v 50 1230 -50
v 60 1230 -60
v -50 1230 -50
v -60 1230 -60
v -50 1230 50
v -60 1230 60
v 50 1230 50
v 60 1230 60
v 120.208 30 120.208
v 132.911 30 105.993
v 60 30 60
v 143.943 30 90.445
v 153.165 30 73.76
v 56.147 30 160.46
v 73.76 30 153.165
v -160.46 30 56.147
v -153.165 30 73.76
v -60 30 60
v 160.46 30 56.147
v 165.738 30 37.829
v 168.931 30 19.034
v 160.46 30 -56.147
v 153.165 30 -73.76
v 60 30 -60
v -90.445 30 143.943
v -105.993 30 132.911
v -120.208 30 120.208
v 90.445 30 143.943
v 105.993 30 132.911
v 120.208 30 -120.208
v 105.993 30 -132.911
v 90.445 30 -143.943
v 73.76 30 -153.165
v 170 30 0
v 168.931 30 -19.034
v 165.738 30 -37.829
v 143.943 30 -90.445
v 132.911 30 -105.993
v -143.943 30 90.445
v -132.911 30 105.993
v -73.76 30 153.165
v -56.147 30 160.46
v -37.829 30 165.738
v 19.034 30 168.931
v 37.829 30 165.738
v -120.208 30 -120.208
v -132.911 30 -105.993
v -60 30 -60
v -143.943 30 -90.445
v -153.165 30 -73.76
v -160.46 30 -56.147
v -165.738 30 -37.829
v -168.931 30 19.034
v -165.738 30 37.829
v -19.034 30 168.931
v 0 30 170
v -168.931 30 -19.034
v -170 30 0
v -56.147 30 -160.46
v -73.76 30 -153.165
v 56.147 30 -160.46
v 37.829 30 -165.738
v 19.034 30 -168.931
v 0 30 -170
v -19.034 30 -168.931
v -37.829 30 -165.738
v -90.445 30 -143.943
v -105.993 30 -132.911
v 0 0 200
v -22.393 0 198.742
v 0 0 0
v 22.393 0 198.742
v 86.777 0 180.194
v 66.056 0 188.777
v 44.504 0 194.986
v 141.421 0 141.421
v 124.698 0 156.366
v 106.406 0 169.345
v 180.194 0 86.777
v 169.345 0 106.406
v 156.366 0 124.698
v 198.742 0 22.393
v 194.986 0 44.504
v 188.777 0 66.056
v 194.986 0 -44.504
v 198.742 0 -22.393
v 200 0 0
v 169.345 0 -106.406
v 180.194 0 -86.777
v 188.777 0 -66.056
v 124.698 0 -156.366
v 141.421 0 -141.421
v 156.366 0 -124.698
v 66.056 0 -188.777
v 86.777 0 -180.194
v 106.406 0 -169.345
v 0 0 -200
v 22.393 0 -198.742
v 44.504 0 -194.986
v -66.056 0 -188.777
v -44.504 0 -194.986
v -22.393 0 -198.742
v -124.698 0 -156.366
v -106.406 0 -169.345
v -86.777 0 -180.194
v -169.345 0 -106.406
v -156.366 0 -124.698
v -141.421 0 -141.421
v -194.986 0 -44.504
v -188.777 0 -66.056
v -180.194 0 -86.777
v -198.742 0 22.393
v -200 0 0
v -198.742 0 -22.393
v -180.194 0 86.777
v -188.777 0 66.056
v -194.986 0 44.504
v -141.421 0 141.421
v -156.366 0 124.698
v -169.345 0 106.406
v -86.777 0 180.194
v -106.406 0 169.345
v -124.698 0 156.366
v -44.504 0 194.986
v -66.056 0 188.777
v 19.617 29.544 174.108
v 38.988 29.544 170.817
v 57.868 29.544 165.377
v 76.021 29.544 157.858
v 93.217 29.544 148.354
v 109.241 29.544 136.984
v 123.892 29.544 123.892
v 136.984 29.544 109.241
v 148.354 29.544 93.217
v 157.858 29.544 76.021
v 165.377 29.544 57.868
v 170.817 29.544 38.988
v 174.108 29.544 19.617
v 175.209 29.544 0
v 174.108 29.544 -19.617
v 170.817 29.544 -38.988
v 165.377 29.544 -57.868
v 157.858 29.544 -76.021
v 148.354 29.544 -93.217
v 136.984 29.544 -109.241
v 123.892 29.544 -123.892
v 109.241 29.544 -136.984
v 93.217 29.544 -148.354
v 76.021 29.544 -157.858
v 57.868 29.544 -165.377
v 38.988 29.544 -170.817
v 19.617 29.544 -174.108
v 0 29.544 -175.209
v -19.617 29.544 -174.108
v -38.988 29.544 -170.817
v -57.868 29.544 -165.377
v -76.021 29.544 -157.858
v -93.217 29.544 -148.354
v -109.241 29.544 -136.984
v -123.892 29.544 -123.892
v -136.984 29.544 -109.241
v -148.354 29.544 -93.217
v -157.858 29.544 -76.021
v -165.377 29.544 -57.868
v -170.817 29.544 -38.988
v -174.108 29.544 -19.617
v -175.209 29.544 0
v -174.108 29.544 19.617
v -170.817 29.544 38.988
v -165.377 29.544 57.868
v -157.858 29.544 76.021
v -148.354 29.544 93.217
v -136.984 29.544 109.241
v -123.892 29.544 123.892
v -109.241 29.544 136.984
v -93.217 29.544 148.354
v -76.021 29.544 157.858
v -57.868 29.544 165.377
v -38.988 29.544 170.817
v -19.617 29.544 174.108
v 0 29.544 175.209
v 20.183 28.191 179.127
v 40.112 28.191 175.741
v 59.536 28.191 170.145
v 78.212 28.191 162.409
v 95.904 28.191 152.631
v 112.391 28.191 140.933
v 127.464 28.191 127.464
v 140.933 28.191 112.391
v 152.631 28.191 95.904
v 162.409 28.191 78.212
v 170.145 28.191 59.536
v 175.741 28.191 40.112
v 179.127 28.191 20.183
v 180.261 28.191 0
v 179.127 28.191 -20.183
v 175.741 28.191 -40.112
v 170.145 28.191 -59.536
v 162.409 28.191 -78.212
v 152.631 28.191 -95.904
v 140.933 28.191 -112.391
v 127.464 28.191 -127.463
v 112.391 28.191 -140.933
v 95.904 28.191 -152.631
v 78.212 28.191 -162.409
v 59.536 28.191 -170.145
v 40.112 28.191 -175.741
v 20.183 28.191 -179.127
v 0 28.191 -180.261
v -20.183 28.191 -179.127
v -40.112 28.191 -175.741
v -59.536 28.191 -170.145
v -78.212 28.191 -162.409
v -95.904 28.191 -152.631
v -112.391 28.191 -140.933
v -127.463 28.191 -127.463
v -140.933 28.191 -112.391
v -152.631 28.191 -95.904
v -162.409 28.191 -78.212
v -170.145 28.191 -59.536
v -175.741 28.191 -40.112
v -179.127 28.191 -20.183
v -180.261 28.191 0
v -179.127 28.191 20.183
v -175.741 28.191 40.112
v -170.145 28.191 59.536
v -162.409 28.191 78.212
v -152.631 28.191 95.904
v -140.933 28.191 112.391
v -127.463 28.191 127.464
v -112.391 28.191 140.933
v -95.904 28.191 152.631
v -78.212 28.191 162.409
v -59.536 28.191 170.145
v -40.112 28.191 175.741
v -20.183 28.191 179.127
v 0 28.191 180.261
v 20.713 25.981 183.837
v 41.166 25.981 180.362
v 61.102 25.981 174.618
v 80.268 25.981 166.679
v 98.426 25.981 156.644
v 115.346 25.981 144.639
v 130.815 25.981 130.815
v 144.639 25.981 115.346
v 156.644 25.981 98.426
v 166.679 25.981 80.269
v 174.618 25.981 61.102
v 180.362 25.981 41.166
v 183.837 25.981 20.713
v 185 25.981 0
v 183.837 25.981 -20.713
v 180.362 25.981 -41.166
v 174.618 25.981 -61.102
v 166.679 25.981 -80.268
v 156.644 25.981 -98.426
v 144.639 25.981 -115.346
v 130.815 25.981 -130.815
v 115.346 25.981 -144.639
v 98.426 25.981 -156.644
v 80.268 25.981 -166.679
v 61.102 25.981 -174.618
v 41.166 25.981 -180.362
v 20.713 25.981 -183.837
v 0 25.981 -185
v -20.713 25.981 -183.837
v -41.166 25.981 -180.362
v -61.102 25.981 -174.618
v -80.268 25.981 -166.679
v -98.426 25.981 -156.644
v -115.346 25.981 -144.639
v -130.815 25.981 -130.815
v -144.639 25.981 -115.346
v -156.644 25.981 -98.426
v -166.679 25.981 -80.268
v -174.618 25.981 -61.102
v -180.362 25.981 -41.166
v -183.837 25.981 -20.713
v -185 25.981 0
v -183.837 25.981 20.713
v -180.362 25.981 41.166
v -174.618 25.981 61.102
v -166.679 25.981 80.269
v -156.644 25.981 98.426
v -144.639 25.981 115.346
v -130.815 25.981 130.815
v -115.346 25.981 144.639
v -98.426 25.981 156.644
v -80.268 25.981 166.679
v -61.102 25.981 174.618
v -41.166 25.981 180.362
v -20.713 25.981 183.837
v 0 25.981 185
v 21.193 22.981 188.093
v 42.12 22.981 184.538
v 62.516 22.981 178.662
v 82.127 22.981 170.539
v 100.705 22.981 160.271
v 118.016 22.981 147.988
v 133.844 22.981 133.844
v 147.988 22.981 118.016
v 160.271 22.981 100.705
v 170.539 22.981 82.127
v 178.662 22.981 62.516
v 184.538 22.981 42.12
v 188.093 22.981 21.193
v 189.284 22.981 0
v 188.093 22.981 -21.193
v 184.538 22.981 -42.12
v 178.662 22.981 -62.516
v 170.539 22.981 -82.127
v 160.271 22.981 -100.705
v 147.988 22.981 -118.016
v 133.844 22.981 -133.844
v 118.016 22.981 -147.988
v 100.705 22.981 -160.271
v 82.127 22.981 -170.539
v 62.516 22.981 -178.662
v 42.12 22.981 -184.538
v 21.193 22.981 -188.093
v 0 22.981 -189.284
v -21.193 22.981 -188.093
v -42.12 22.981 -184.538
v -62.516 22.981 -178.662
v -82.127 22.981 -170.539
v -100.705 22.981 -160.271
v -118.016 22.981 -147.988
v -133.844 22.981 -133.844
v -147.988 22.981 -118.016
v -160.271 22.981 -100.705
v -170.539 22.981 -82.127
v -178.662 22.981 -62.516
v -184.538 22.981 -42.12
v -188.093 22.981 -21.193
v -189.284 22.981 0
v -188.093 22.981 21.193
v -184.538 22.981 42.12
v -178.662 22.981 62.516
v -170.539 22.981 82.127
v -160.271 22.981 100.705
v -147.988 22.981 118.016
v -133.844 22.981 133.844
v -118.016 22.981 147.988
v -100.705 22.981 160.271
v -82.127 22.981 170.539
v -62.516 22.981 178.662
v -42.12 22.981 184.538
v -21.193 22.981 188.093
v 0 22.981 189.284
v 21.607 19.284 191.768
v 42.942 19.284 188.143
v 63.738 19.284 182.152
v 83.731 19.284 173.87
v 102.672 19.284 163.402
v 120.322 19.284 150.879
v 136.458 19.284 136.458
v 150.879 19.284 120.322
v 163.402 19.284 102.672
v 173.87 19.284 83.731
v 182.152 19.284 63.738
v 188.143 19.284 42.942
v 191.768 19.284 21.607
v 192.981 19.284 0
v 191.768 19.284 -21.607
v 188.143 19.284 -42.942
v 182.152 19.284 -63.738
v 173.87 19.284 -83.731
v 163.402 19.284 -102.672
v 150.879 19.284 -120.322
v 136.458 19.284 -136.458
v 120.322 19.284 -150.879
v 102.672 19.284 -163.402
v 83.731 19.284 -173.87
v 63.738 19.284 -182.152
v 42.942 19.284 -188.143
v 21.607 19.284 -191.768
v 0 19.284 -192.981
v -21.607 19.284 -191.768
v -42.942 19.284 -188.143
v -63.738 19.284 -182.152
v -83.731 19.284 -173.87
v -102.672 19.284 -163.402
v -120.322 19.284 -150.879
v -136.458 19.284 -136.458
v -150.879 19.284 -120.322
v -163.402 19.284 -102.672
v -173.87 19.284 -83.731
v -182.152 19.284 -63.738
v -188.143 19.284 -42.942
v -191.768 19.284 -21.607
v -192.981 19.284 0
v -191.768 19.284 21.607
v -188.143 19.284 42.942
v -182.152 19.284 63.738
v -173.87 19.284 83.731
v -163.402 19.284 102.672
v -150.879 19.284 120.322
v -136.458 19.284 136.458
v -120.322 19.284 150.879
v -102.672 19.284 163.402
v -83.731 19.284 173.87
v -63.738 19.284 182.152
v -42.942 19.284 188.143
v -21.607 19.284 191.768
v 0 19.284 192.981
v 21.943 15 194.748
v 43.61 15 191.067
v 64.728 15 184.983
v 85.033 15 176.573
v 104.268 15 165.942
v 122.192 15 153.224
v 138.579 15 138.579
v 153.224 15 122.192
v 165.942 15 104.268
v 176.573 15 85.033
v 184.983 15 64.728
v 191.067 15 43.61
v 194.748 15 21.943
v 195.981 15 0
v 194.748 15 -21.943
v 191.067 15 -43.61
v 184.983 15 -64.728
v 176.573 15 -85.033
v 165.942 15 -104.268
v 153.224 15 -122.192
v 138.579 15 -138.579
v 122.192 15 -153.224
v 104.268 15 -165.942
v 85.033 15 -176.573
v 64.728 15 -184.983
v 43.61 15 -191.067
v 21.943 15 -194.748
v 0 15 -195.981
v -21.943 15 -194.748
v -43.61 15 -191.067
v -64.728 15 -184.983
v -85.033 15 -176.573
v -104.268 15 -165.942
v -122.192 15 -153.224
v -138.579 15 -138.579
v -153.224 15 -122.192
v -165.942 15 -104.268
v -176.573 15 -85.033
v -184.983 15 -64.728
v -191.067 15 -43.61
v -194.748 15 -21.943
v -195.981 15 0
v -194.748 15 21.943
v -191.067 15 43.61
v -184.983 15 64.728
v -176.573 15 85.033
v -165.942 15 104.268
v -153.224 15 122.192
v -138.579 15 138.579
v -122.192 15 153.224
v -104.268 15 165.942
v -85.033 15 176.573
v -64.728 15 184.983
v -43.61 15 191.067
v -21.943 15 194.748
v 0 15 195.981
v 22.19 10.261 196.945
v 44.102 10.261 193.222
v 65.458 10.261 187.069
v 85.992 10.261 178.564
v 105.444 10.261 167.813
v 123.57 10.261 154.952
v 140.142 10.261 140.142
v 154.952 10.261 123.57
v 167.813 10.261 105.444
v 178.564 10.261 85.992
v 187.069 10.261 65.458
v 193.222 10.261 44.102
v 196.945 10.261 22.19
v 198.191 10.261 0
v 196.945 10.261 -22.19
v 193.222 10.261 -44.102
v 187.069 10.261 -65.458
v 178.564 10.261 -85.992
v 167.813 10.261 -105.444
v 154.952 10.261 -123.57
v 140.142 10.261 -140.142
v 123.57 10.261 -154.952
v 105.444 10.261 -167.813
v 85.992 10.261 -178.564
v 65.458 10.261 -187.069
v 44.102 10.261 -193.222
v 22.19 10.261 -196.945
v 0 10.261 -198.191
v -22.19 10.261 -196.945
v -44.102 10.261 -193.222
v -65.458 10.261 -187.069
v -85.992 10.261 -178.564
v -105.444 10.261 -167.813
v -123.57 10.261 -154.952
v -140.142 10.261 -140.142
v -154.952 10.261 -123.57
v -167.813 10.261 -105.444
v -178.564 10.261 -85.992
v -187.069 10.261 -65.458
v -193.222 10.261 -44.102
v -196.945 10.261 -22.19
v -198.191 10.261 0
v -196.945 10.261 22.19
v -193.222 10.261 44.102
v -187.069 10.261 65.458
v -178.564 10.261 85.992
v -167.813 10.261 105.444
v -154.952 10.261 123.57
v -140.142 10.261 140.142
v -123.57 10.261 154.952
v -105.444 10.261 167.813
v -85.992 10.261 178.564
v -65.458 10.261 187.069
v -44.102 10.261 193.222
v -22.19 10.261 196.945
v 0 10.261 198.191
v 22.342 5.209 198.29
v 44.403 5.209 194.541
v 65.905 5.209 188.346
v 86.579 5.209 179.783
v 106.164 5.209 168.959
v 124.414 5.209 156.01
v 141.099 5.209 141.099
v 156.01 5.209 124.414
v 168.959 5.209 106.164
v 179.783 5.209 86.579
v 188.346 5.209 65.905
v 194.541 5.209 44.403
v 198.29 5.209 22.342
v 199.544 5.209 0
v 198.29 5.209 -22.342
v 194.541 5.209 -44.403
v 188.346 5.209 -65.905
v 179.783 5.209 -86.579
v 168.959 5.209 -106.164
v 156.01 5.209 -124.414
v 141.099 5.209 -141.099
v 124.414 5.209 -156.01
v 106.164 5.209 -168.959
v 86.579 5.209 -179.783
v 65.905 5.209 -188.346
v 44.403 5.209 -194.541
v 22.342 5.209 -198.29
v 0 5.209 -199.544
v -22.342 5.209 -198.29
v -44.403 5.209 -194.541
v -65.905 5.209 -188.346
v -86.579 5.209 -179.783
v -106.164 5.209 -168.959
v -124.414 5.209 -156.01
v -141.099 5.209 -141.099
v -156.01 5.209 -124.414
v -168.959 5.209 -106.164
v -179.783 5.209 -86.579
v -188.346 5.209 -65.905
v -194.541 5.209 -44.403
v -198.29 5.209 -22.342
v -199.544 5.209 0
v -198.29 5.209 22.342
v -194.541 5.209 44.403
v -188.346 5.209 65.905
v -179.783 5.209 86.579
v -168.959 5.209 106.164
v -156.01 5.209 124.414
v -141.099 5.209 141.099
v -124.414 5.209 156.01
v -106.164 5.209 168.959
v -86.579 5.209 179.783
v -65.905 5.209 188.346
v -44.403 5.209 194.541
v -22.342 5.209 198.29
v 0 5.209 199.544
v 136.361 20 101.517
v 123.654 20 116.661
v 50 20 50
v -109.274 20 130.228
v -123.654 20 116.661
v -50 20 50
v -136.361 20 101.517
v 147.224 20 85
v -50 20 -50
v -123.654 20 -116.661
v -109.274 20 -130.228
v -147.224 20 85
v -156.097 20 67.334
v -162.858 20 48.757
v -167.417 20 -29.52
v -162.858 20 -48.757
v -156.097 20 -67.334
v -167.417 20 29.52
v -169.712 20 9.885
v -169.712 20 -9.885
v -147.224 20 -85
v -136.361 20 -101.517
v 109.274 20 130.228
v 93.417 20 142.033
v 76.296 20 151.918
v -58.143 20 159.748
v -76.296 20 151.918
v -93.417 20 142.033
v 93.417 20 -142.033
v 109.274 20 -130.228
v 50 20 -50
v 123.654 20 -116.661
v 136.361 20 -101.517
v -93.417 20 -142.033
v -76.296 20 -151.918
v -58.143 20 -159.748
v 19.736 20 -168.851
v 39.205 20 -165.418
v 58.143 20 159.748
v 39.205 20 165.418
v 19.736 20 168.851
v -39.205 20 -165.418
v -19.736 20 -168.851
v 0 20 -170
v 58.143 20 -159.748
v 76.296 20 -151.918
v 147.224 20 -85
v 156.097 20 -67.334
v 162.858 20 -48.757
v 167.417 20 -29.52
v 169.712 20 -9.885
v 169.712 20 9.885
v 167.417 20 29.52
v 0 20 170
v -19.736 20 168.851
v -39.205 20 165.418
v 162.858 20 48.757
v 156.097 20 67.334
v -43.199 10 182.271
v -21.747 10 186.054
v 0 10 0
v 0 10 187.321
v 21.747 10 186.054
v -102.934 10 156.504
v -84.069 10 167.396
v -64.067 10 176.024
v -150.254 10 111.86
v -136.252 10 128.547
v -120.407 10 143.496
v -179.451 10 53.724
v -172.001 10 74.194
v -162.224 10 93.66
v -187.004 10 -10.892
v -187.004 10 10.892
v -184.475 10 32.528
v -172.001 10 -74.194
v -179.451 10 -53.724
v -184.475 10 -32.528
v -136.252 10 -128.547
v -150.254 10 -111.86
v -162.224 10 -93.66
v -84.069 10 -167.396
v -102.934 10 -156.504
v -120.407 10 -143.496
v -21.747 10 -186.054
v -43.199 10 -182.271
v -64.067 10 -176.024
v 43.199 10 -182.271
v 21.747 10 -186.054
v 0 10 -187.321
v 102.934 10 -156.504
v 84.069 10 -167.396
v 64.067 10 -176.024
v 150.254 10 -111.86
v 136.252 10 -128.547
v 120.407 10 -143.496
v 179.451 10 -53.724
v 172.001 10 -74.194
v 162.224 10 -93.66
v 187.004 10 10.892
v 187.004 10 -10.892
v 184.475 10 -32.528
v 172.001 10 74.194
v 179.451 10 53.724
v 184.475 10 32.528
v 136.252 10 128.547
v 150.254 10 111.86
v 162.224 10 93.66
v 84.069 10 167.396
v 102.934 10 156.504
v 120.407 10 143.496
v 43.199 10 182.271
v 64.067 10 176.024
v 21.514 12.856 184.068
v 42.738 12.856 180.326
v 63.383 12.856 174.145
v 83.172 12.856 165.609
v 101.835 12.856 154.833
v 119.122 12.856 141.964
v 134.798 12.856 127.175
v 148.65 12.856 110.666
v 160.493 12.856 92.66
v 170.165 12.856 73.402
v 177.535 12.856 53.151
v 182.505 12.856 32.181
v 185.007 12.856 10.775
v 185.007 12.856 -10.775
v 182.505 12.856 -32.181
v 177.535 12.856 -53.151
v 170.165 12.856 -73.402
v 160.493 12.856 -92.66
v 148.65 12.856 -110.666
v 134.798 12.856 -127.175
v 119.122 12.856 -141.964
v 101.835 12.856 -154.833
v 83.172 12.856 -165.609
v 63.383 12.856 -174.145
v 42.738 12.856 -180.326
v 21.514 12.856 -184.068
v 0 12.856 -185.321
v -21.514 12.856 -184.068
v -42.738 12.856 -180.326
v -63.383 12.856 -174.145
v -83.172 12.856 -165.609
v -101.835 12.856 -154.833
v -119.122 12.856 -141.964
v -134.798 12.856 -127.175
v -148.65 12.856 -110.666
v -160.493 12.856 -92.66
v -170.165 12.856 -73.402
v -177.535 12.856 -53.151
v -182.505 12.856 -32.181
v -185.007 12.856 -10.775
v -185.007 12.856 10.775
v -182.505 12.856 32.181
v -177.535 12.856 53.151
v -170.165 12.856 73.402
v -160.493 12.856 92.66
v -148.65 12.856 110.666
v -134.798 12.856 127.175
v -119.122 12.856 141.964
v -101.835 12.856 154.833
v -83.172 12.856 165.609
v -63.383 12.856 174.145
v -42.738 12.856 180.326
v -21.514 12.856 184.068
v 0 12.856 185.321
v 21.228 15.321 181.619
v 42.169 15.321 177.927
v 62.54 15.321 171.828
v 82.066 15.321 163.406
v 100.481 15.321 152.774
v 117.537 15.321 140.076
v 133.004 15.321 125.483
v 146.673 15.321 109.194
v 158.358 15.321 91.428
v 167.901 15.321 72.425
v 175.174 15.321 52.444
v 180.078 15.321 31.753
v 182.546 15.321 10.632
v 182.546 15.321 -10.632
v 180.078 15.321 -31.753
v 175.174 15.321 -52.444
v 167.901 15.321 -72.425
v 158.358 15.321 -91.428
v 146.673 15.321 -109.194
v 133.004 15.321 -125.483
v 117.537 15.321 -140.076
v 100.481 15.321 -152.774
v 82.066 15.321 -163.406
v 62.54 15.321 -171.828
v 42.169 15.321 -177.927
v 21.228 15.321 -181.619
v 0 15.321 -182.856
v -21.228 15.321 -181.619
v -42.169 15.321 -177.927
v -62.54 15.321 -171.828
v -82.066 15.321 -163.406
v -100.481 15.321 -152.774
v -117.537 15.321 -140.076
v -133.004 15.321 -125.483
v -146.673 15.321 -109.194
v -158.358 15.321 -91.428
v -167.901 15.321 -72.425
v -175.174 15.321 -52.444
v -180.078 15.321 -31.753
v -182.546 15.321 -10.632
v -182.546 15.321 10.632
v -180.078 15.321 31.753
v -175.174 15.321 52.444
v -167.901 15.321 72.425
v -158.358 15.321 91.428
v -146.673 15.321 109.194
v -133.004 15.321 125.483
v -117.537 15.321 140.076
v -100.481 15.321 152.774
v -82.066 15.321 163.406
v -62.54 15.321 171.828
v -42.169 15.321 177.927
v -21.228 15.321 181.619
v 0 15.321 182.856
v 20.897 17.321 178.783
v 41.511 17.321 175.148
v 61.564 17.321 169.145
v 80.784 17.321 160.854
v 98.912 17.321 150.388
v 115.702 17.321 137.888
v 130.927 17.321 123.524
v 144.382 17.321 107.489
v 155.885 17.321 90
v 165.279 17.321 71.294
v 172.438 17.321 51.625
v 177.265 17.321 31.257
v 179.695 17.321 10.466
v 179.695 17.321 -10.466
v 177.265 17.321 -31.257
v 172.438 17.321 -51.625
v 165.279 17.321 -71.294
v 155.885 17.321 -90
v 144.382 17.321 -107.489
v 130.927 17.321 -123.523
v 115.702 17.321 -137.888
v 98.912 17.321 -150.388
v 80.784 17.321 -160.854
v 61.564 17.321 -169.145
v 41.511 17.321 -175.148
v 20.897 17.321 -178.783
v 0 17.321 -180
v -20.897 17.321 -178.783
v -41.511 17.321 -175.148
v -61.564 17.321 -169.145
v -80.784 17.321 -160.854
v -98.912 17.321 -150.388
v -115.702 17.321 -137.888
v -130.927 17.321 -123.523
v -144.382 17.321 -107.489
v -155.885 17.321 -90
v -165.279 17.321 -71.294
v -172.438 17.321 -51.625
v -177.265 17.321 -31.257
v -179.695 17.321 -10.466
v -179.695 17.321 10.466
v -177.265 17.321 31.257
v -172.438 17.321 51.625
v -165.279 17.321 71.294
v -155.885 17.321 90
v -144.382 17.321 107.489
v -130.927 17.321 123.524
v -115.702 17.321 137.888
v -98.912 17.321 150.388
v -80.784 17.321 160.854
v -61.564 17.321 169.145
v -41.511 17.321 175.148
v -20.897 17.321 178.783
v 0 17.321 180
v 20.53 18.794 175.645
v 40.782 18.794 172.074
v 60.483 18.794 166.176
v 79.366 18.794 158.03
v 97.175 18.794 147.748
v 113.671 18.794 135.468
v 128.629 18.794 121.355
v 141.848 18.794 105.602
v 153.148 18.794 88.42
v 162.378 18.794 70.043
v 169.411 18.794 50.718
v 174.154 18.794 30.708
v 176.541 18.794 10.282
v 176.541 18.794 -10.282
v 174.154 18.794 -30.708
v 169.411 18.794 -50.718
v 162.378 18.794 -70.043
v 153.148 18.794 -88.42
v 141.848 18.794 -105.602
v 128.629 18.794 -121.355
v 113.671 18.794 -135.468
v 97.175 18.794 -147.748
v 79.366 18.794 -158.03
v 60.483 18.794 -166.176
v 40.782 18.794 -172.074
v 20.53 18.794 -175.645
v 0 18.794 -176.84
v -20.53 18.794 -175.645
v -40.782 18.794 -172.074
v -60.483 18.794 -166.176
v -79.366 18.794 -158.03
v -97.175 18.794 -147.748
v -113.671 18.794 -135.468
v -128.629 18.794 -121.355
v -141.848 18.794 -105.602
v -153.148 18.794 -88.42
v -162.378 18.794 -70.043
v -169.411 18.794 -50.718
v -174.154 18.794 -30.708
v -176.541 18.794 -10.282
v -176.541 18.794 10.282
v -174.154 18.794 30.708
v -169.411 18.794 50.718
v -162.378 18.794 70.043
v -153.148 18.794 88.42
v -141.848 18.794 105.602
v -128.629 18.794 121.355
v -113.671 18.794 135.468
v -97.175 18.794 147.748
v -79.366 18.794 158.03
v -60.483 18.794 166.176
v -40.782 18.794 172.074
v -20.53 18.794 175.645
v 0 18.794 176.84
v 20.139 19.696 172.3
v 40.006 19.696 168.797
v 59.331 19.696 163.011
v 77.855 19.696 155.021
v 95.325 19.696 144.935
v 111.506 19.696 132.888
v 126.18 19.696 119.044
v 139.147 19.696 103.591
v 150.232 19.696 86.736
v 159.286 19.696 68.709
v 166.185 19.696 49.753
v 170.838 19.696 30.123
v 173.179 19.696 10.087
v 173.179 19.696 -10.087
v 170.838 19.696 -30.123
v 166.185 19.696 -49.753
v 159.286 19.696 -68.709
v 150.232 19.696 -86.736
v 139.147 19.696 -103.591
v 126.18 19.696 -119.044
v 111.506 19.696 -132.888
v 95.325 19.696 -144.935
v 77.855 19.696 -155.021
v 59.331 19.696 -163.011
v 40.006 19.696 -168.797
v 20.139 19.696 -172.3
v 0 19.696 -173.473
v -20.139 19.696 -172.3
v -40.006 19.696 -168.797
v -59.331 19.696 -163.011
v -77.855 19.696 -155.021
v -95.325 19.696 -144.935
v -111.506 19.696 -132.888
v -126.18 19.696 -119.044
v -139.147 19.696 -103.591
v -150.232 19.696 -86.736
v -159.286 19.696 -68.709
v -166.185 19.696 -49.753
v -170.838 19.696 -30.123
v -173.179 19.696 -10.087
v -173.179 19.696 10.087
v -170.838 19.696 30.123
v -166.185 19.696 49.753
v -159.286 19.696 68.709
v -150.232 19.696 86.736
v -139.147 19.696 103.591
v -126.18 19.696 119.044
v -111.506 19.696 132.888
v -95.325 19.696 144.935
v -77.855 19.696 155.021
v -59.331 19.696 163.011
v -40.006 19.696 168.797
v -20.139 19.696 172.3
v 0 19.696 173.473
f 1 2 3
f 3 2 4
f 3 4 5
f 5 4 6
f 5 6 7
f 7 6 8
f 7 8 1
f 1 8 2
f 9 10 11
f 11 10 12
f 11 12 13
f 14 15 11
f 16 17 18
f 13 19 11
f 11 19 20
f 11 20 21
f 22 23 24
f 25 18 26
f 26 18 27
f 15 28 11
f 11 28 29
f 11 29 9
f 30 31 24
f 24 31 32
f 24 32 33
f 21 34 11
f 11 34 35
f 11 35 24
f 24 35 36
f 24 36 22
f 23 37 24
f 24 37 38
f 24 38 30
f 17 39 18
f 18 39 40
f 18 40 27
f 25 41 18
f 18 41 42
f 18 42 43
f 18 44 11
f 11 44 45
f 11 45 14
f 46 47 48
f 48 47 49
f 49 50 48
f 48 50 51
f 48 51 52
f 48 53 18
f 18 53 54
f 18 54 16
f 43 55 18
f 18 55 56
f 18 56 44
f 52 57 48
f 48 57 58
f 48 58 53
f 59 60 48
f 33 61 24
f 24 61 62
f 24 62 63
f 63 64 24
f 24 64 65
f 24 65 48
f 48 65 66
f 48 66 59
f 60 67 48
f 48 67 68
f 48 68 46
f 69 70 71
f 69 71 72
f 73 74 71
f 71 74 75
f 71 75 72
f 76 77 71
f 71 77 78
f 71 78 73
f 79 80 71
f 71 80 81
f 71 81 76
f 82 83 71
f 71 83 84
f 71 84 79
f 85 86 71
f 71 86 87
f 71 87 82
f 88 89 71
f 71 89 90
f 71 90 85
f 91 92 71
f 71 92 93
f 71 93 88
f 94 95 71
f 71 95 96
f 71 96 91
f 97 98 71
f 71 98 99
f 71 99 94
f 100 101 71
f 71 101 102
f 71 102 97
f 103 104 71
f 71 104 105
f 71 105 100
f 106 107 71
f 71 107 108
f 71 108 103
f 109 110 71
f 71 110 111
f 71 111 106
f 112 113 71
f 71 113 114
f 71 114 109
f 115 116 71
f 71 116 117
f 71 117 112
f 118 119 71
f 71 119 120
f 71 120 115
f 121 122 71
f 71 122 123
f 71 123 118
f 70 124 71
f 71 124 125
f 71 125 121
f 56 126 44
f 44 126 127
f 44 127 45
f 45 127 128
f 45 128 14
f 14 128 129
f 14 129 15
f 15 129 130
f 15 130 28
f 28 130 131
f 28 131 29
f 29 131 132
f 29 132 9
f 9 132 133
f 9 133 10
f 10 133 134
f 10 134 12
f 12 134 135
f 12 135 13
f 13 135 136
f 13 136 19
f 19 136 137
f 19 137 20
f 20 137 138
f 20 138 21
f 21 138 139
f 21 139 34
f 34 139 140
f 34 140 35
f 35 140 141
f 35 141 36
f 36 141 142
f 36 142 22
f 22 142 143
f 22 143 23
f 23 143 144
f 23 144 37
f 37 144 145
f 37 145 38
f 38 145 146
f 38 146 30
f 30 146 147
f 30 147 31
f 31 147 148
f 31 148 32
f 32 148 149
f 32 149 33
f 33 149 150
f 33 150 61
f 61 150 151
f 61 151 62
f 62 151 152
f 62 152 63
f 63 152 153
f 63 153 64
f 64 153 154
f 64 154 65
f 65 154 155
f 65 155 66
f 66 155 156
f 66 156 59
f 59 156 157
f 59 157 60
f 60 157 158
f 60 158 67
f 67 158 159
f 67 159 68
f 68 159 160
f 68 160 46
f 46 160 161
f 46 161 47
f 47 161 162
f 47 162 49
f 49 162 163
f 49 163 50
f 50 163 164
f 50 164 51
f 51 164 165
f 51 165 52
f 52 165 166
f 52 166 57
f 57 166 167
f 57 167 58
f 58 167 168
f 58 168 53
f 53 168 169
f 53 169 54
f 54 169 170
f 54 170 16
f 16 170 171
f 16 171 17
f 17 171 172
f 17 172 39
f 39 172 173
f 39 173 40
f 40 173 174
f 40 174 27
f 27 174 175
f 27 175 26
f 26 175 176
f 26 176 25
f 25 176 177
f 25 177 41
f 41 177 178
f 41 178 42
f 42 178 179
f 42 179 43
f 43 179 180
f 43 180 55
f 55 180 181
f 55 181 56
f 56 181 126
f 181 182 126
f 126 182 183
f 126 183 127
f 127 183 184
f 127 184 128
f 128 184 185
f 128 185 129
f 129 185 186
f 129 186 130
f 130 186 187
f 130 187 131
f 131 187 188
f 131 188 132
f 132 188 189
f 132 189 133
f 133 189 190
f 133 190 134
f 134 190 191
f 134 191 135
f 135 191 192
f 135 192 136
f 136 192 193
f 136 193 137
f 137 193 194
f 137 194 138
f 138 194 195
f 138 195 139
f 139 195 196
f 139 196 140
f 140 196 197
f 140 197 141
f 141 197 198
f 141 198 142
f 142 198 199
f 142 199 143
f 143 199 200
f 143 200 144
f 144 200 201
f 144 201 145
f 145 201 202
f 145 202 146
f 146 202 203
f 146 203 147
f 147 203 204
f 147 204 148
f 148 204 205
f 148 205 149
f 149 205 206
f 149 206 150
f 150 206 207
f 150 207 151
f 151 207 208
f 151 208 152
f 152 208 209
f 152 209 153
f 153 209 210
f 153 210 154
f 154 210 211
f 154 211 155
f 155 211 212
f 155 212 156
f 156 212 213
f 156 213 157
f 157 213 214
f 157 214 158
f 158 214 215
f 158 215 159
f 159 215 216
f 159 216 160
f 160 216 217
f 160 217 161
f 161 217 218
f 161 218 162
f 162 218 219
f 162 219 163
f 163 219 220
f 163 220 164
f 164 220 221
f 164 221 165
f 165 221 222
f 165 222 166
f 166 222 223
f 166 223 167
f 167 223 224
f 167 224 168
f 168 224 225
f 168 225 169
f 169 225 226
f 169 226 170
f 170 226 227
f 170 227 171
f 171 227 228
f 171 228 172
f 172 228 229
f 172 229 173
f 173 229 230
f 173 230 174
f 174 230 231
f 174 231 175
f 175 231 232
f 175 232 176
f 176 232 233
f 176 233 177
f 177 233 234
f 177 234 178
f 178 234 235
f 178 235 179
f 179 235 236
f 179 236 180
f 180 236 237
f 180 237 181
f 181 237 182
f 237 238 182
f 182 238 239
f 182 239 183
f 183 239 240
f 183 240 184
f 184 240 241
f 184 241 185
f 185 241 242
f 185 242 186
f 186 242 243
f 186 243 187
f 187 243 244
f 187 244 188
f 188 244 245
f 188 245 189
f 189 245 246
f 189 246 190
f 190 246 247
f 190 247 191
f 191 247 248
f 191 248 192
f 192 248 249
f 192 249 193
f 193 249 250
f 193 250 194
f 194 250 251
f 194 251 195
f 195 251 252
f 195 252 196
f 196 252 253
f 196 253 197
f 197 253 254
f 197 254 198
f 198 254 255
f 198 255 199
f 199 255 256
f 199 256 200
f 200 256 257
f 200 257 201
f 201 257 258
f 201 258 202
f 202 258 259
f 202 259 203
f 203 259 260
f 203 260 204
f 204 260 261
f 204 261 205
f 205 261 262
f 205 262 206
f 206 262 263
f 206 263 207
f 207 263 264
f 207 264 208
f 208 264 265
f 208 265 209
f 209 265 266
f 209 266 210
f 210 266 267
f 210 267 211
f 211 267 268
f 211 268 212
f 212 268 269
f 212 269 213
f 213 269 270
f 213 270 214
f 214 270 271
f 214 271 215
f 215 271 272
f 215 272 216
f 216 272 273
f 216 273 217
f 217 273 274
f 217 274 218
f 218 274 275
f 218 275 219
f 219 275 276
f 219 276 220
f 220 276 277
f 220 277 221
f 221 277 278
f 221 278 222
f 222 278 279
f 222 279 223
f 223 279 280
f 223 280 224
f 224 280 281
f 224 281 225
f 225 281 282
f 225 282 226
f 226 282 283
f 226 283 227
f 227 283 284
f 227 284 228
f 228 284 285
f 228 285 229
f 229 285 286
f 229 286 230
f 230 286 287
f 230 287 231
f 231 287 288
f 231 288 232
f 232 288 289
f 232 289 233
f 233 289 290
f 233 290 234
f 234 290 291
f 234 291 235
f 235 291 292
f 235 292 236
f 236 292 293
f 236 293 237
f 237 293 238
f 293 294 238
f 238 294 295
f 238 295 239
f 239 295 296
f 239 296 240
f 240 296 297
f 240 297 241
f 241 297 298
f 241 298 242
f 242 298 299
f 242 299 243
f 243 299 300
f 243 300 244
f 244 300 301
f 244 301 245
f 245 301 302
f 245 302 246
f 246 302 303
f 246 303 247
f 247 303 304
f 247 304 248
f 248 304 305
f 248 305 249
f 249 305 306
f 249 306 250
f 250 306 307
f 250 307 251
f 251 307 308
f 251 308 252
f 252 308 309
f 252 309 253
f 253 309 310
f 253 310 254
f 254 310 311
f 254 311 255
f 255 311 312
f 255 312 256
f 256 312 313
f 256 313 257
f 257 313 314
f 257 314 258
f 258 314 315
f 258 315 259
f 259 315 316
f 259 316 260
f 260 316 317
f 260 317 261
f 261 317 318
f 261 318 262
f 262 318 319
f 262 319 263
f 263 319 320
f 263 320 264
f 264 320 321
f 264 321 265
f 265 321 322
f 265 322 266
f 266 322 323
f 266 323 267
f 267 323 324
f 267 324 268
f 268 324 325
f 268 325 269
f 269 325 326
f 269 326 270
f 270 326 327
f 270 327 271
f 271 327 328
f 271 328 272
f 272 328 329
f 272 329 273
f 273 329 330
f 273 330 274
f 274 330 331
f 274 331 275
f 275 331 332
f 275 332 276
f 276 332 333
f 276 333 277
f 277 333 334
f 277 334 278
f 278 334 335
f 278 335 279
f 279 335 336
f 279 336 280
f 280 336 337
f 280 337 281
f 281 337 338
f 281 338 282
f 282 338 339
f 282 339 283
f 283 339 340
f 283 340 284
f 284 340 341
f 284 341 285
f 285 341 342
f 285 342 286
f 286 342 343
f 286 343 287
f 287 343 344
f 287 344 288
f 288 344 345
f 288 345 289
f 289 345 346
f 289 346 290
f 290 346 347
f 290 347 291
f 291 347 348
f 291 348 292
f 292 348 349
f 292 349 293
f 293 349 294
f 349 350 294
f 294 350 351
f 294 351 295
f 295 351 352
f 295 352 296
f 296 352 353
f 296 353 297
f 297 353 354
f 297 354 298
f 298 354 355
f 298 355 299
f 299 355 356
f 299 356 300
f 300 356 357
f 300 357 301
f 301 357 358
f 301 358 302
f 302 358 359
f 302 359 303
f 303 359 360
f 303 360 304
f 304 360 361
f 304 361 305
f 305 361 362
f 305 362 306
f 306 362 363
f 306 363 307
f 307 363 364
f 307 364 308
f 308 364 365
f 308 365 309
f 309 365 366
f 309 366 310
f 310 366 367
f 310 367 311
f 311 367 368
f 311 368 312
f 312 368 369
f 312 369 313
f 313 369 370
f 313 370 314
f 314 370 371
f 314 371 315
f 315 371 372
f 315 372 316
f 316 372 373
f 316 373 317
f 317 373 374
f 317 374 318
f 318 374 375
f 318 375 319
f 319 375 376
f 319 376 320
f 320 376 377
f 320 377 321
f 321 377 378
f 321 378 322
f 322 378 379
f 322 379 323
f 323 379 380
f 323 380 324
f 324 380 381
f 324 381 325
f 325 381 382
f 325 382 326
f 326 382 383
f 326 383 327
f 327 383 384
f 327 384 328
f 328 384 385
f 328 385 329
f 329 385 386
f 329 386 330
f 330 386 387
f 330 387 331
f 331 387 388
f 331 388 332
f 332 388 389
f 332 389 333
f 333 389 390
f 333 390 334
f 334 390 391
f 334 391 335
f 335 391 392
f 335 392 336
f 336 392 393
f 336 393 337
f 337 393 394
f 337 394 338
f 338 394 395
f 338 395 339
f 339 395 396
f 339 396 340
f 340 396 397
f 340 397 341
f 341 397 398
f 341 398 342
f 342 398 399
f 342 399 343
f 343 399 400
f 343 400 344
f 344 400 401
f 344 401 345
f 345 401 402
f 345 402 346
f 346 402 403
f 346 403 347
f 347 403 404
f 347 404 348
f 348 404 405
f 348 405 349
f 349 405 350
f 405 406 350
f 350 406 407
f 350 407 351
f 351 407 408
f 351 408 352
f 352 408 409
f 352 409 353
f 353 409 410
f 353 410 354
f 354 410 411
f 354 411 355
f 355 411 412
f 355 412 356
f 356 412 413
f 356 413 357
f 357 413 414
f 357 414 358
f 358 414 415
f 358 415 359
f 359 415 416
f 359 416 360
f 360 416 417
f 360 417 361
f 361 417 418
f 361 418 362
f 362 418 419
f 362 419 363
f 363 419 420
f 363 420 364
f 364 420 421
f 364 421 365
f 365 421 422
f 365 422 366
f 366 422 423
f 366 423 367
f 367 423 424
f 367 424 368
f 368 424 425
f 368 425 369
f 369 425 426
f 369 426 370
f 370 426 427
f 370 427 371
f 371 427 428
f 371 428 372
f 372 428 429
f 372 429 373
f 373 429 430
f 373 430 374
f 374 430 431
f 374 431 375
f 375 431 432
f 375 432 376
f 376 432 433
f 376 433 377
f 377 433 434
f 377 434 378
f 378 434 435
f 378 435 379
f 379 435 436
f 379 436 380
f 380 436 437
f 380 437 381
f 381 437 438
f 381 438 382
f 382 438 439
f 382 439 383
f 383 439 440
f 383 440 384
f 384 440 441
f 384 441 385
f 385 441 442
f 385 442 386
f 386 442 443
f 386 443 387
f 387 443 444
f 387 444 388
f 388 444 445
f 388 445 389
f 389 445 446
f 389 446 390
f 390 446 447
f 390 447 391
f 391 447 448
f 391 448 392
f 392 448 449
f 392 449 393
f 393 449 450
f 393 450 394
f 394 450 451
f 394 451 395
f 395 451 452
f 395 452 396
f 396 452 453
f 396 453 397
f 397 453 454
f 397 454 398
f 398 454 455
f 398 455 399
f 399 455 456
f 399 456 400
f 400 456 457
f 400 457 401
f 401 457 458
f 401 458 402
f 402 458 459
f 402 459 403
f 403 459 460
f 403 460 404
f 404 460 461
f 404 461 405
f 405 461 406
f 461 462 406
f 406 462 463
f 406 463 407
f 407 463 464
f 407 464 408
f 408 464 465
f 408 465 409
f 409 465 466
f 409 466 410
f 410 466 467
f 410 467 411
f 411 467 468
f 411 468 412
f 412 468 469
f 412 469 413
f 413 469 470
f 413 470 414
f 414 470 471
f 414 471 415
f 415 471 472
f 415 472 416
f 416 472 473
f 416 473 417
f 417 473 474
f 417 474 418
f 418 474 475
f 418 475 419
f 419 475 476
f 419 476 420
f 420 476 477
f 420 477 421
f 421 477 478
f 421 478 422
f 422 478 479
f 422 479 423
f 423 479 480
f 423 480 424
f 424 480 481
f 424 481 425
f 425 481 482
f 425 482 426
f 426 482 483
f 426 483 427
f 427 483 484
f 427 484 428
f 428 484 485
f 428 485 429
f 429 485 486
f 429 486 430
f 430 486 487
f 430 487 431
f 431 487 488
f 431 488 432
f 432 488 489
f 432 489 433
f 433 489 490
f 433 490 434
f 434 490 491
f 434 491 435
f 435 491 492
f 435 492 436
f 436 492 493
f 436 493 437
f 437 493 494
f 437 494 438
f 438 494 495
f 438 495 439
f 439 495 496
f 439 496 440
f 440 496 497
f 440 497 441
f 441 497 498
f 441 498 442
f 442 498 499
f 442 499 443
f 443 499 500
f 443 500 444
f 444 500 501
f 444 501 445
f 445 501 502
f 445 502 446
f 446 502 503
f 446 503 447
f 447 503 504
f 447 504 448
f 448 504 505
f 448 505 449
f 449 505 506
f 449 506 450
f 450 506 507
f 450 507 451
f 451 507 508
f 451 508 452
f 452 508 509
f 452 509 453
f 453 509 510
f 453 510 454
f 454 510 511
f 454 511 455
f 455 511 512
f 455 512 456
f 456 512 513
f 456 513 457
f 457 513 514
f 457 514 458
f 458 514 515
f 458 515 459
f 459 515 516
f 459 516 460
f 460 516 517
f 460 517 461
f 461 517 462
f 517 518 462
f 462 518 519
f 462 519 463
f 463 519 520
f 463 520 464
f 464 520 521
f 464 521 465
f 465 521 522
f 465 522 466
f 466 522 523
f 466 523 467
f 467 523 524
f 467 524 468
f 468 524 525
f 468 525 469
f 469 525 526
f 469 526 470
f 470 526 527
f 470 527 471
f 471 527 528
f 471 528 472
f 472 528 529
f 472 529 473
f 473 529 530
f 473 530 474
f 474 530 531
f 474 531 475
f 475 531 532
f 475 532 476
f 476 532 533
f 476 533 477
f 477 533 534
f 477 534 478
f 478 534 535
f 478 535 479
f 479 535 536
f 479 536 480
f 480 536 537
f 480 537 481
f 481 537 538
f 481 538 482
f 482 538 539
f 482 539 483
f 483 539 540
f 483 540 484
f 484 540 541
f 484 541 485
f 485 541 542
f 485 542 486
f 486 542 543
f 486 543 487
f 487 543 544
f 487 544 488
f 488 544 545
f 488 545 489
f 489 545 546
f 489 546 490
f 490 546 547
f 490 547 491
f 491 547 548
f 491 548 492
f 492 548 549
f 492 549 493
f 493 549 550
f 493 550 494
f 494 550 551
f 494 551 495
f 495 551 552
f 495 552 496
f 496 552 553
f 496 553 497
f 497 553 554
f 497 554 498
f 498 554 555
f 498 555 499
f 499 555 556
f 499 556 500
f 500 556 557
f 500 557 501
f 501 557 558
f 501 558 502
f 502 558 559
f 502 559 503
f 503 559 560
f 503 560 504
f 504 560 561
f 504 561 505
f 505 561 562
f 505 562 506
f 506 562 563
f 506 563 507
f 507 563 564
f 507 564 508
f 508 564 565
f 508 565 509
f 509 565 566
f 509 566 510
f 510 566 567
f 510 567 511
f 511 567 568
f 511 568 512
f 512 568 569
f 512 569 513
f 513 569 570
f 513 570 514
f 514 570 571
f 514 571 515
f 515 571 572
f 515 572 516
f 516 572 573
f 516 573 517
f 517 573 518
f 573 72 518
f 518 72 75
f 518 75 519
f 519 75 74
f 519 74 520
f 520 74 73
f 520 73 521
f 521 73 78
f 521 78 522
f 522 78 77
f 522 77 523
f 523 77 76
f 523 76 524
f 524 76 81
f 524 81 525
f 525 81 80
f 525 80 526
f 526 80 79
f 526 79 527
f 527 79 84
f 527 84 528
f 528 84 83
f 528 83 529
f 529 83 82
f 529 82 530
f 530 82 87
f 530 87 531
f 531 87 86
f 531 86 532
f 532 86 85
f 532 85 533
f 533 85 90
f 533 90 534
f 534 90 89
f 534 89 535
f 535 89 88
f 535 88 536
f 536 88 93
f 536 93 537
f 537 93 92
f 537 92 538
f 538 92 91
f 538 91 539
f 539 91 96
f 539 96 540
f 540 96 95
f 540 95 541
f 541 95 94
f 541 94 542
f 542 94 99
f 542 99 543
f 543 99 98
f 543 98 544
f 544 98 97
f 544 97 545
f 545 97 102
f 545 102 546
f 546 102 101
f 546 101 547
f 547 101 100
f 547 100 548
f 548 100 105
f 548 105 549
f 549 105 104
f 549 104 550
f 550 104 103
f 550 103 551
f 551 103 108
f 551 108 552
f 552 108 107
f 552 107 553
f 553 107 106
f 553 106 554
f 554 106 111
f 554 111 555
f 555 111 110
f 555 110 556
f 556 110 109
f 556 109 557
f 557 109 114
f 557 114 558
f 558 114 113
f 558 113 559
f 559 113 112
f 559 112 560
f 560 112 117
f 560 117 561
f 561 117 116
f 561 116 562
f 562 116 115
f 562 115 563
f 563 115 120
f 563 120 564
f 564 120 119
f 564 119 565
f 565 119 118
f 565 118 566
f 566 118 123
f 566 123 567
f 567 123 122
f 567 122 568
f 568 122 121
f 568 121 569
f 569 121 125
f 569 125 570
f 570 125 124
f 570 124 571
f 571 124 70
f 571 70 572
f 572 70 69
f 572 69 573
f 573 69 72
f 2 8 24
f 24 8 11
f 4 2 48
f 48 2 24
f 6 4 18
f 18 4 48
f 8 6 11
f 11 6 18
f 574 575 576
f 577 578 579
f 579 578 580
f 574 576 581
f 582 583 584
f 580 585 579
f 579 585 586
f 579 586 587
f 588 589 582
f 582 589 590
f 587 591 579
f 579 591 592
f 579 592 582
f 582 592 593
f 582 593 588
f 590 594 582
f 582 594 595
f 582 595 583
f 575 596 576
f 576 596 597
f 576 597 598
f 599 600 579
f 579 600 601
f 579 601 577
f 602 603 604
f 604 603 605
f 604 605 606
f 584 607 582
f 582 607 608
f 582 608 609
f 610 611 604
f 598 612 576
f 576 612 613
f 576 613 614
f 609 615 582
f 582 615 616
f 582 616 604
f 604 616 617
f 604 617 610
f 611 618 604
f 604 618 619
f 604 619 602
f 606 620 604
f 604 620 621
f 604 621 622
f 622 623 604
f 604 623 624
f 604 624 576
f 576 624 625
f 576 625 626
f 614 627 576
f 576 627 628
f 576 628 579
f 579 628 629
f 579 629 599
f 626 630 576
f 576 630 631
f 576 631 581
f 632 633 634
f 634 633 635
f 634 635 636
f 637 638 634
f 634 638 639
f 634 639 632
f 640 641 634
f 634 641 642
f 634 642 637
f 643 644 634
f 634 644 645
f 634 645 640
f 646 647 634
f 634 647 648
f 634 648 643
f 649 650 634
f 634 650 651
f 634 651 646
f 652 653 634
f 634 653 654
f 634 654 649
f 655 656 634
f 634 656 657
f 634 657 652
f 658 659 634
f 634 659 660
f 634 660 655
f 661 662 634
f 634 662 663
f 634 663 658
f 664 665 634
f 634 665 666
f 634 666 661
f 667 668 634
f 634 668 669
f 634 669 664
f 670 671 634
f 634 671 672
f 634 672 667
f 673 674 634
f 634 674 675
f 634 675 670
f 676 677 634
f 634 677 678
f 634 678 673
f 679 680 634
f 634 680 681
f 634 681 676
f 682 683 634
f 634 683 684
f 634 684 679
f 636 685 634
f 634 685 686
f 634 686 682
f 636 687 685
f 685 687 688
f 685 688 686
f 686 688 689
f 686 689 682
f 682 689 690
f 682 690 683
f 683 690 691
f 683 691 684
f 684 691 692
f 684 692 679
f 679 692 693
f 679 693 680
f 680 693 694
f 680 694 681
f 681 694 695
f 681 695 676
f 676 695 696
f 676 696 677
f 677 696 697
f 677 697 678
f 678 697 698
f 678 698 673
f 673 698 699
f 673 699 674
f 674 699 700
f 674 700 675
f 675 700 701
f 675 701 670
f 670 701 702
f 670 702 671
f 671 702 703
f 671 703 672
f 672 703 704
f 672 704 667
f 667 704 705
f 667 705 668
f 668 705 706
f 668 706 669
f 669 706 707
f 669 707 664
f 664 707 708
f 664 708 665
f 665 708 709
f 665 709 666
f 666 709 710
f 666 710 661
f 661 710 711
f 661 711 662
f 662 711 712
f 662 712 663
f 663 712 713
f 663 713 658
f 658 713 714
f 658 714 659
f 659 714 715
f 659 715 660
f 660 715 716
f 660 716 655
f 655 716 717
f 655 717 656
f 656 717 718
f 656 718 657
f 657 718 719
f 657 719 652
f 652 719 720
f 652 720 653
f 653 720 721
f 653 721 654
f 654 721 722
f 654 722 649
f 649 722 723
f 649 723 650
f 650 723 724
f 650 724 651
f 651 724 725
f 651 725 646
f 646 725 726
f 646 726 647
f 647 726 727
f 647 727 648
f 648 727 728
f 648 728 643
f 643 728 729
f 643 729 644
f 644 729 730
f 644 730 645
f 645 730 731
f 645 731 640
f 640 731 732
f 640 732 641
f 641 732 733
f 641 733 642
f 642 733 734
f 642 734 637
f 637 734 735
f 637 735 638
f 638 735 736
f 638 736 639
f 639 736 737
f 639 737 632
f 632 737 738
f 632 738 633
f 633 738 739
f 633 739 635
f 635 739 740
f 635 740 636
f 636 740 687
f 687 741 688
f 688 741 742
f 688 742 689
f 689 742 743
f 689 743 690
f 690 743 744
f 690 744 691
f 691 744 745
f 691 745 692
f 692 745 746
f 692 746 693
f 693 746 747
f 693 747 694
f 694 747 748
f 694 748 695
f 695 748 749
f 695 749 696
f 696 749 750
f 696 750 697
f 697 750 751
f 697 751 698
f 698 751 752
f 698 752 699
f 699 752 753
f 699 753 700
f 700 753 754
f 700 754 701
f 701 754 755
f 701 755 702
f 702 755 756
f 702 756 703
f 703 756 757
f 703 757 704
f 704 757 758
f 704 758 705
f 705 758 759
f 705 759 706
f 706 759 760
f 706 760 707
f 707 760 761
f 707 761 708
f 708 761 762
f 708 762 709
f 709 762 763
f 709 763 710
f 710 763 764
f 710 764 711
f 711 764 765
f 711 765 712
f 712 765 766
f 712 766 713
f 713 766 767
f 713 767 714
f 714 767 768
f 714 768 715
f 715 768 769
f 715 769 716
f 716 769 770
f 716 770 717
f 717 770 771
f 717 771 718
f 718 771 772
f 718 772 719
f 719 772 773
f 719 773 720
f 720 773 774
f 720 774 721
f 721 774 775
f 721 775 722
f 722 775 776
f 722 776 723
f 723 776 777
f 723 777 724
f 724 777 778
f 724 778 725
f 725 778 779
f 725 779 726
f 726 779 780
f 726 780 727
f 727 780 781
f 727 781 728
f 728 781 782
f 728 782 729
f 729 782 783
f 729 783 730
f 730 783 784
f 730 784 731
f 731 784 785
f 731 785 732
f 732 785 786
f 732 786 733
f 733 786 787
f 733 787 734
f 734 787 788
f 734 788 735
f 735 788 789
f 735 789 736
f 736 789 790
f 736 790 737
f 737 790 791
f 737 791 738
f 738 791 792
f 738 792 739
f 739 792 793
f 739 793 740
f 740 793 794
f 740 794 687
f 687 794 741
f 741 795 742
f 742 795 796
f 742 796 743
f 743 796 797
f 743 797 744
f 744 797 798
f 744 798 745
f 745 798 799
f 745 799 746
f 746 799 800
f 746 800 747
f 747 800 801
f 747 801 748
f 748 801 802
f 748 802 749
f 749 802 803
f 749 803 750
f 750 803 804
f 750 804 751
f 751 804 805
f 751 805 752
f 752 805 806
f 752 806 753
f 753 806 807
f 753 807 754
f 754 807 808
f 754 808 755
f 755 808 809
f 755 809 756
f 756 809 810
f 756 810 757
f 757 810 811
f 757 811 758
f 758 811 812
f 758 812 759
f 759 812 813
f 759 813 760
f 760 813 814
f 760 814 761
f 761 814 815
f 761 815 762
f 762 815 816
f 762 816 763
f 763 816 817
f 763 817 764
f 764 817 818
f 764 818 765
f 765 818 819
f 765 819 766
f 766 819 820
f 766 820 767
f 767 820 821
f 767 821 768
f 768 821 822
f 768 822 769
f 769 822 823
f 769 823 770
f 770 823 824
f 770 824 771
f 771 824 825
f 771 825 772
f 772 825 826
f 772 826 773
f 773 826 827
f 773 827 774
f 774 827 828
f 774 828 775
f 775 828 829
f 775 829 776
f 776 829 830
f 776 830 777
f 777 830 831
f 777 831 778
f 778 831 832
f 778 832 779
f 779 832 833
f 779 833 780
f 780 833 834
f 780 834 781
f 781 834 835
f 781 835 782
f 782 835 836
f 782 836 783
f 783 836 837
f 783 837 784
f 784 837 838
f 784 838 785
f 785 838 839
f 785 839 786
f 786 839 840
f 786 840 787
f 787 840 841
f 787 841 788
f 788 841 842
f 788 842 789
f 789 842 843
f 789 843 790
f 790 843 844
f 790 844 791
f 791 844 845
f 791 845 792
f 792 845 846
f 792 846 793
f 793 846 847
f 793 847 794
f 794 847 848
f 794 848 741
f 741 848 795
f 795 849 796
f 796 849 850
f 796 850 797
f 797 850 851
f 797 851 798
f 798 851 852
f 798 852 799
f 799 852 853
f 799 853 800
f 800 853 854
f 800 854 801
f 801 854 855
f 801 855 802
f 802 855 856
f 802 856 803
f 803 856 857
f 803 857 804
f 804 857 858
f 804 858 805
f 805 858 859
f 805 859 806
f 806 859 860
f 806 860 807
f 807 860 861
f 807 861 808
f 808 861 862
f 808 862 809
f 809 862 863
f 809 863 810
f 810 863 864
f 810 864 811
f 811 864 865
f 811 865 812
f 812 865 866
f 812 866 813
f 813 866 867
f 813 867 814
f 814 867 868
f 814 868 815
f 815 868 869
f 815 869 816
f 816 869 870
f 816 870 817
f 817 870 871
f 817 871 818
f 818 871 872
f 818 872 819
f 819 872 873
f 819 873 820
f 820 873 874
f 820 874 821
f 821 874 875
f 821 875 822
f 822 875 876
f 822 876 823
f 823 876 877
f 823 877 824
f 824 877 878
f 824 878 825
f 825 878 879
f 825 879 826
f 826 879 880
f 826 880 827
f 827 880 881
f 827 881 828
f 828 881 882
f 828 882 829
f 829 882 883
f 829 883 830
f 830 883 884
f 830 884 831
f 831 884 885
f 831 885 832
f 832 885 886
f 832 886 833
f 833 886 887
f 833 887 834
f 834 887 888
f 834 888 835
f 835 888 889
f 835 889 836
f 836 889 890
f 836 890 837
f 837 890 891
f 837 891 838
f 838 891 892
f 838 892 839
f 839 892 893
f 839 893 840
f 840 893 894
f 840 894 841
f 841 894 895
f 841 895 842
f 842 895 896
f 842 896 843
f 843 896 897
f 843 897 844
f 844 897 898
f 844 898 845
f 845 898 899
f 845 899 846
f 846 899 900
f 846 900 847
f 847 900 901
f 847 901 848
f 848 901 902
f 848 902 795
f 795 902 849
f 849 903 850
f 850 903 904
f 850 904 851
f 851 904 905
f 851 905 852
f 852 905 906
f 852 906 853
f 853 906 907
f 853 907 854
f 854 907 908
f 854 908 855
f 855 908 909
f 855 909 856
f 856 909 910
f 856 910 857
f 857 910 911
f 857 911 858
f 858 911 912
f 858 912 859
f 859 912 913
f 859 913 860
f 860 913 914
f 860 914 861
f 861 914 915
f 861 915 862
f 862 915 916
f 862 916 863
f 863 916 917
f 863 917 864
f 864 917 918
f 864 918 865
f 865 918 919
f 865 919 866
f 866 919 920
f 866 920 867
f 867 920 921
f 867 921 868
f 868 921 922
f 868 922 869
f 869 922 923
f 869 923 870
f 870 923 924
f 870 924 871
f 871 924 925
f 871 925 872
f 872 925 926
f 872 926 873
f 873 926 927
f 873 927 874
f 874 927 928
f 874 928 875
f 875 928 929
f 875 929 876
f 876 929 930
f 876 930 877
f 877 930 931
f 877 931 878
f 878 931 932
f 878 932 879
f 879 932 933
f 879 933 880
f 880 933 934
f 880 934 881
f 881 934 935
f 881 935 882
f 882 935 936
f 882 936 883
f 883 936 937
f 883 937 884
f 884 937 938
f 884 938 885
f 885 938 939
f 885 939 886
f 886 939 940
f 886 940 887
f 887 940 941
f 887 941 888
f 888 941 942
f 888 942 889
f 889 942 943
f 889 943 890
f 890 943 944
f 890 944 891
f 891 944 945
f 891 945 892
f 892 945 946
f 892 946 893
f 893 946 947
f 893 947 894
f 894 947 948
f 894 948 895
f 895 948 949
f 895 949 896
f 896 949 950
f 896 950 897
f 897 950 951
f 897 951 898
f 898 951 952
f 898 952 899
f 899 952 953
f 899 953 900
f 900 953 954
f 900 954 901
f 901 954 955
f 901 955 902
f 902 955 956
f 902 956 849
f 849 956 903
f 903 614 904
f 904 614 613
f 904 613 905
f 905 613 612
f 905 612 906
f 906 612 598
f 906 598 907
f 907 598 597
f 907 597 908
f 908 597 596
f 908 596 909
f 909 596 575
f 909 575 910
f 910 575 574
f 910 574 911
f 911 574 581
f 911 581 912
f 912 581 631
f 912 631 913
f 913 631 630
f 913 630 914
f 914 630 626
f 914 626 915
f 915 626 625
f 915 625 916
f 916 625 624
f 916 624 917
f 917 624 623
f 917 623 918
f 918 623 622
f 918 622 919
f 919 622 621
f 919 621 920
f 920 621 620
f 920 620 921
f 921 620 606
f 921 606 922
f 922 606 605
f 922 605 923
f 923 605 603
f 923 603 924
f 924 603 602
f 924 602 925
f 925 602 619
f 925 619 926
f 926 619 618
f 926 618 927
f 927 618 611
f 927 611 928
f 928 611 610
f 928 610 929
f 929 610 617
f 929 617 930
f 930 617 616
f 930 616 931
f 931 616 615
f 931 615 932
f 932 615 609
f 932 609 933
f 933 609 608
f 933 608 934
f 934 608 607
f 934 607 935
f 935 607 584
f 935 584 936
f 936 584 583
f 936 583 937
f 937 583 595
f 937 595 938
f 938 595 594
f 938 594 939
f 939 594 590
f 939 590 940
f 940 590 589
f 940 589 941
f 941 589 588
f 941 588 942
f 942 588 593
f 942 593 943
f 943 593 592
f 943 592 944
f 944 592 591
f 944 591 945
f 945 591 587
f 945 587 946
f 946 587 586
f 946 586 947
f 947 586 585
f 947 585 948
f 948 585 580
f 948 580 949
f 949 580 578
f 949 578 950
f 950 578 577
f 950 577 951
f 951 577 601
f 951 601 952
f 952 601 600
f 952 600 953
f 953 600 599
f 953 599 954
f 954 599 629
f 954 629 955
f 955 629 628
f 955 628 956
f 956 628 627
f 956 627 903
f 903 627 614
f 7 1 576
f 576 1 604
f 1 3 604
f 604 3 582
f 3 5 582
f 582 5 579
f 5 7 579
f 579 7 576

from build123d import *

# Parameters (mm, degrees)
SKETCH1_R           = 200
BOSS_EXTRUDE1_DEPTH = 30
FILLET1_R           = 30
SKETCH2_W           = 120
SKETCH2_H           = 120
BOSS_EXTRUDE2_DEPTH = 1200
SHELL1_T            = -10


with BuildPart() as part:
    # Sketch1 → Boss-Extrude1 (new body)
    with BuildSketch(Plane(origin=(0, 0, 0), x_dir=(1, 0, 0), z_dir=(0, 1, 0))):
        with Locations(Location((0, 0, 0), (0, 0, 270))):
            Circle(SKETCH1_R)
    extrude(amount=BOSS_EXTRUDE1_DEPTH)

    # Fillet1
    fillet1_edges = [part.edges().sort_by_distance(p)[0] for p in [
        (0, 30, -200),
    ]]
    fillet(fillet1_edges, radius=FILLET1_R - 0.0001)  # a hair under: the kernel refuses the full size

    # Sketch2 → Boss-Extrude2 (add)
    with BuildSketch(Plane(origin=(0, 30, 0), x_dir=(1, 0, 0), z_dir=(0, 1, 0))):
        Rectangle(SKETCH2_W, SKETCH2_H)
    extrude(amount=BOSS_EXTRUDE2_DEPTH)

    # Shell1
    shell1_openings = [part.faces().sort_by_distance(p)[0] for p in [
        (0, 1230, 0),
    ]]
    offset(amount=SHELL1_T, openings=shell1_openings, kind=Kind.INTERSECTION)


solid = part.part
